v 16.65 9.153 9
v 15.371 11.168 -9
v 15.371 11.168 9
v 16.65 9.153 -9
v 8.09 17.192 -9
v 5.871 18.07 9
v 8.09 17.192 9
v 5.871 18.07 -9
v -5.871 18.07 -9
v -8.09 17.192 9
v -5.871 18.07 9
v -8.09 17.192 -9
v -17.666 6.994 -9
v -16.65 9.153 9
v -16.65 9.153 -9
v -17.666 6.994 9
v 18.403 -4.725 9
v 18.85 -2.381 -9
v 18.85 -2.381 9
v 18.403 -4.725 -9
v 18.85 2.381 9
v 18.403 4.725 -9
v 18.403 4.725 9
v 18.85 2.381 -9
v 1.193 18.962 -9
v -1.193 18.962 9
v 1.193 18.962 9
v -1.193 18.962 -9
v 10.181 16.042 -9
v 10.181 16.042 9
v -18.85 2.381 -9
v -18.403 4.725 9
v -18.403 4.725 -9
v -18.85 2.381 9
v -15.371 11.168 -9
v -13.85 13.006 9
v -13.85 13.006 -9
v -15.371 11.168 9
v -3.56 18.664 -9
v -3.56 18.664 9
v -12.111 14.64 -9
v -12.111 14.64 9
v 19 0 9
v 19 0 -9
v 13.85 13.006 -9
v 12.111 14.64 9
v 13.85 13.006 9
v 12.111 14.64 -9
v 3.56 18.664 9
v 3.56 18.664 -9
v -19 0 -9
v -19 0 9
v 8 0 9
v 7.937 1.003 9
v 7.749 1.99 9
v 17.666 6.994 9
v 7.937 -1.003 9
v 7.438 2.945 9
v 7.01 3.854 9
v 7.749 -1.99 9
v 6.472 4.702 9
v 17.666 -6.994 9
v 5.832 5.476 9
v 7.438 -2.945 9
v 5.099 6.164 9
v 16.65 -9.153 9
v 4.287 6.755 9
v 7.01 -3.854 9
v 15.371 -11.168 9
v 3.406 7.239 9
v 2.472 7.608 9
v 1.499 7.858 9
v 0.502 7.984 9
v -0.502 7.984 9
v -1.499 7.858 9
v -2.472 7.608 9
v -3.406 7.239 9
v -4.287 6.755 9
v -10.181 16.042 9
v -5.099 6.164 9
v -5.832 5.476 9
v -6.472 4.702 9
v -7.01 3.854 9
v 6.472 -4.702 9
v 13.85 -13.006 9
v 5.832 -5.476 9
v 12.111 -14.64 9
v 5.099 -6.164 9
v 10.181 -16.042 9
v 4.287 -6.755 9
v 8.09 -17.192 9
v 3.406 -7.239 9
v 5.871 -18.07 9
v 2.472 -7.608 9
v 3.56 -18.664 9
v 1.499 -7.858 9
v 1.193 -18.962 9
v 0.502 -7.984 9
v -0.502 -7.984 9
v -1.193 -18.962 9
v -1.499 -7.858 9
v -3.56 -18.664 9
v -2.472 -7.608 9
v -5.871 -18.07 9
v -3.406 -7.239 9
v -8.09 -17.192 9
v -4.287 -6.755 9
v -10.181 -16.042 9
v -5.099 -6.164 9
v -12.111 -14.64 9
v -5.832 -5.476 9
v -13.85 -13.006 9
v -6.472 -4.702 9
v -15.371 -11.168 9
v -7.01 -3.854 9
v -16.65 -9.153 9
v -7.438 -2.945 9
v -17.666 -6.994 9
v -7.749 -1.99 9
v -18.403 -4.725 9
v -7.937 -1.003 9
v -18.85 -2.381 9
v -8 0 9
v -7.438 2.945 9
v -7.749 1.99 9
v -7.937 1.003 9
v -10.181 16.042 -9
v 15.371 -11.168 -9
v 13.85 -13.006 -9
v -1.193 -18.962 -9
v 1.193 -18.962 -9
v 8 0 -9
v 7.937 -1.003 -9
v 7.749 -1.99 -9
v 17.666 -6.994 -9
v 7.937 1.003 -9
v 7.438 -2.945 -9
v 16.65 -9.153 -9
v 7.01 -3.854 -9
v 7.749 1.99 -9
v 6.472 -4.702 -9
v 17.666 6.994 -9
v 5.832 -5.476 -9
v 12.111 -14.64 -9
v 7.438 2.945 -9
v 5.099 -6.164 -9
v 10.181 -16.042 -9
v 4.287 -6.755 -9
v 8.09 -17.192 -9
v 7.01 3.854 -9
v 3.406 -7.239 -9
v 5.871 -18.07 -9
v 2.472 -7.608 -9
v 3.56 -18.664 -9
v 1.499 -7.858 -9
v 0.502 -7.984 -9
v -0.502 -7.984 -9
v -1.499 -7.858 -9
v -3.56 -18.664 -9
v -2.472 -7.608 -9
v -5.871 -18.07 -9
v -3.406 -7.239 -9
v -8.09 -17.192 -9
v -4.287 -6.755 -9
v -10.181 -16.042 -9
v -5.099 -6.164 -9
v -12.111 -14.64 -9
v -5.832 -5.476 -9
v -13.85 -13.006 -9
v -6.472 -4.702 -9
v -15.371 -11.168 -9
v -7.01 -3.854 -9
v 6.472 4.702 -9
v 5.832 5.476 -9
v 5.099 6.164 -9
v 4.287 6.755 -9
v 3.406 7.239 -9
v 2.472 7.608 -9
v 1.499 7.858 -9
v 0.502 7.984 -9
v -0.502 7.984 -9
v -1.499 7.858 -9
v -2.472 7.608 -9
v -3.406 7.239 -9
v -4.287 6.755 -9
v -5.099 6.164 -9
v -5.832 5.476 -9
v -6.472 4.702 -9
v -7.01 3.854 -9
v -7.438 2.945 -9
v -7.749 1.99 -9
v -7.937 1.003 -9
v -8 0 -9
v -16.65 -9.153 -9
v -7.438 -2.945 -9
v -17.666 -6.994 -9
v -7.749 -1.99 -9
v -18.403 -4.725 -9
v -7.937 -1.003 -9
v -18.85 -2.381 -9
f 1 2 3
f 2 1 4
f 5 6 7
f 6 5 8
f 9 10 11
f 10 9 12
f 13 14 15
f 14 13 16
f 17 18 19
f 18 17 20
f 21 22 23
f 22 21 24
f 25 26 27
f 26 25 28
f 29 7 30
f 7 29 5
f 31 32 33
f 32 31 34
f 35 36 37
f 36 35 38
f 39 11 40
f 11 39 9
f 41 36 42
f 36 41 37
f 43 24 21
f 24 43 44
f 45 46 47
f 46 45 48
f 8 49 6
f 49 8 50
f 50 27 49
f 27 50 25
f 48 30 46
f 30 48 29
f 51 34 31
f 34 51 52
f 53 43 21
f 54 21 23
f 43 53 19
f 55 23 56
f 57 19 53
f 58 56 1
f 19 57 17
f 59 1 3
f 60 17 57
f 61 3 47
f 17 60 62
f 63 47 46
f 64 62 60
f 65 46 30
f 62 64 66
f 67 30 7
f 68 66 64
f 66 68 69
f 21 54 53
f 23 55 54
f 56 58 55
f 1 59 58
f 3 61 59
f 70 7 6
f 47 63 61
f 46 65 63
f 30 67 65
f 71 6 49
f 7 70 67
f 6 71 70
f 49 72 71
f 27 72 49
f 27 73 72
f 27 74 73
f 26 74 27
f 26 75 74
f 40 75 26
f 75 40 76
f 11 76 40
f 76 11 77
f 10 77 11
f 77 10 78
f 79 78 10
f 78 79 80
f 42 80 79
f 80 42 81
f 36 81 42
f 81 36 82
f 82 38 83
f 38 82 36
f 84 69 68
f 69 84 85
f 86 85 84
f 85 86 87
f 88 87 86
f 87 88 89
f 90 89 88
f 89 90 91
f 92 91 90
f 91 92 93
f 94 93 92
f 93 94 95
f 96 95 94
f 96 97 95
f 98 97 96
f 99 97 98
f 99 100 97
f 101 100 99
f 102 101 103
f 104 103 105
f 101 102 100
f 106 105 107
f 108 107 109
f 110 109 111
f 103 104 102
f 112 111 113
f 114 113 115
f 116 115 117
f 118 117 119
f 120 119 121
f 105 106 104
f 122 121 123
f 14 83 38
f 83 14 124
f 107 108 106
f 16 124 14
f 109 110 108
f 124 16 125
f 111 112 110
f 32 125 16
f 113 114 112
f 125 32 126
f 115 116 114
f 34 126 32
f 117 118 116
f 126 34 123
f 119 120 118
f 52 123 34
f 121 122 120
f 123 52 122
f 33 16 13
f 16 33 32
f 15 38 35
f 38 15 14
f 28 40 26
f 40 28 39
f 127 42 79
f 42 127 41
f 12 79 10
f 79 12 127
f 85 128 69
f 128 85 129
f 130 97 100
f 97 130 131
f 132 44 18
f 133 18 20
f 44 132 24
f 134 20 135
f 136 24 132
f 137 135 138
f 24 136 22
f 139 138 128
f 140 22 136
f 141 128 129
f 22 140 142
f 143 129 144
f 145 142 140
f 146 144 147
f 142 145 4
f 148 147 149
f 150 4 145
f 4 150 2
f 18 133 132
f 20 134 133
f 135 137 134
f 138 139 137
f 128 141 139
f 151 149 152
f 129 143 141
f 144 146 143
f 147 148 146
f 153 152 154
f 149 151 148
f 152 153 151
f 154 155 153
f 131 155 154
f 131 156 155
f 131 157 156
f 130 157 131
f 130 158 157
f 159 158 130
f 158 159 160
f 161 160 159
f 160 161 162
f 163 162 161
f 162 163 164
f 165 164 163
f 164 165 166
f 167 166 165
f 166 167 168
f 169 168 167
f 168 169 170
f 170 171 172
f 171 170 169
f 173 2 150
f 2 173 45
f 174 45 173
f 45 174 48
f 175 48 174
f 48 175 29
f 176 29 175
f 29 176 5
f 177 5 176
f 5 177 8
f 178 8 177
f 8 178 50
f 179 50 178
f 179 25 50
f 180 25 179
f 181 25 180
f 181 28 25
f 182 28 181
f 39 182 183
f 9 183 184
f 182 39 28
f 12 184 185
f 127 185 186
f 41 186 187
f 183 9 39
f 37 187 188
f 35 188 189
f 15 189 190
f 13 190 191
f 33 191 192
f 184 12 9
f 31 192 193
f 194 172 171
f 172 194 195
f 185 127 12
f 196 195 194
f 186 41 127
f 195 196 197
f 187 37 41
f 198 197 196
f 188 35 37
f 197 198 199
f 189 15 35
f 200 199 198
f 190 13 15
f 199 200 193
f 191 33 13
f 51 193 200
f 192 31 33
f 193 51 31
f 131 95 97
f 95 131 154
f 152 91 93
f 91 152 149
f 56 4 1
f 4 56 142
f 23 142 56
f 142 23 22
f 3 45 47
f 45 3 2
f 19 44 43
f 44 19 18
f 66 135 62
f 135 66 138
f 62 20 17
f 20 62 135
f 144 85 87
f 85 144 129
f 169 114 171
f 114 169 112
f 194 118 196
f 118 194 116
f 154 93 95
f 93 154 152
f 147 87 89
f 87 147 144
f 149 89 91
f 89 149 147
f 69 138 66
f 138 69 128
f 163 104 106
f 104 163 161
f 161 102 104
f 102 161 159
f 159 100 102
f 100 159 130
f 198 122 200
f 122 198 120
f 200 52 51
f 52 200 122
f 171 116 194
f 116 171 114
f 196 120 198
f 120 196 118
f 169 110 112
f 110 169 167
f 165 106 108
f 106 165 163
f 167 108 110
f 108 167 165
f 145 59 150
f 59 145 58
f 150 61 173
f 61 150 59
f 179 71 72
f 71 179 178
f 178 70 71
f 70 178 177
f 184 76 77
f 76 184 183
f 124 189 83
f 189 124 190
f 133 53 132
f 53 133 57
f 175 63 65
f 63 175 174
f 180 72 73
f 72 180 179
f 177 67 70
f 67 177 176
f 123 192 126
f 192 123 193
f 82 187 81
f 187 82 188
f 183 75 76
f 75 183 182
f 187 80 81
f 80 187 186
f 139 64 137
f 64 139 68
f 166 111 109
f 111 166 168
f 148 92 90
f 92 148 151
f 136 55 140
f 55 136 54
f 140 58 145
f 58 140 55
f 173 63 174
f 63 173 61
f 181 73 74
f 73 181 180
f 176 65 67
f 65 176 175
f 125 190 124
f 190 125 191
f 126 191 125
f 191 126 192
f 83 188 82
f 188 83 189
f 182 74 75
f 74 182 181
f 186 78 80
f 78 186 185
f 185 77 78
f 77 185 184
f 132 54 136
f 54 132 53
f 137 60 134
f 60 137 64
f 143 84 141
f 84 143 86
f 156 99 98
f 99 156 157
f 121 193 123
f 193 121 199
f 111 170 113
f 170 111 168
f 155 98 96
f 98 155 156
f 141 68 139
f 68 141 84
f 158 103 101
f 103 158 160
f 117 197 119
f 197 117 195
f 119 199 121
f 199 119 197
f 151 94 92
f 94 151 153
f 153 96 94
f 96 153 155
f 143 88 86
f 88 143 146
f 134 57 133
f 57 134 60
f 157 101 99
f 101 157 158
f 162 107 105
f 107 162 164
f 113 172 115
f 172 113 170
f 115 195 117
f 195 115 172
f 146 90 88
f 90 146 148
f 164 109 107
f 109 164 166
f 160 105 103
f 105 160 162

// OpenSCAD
$fn = 50;


difference() {
	union() {
		translate(v = [0, 0, -9.0000000000]) {
			cylinder(h = 18, r = 19.0000000000);
		}
	}
	union() {
		translate(v = [0, 0, -100.0000000000]) {
			cylinder(h = 200, r = 8);
		}
	}
}
